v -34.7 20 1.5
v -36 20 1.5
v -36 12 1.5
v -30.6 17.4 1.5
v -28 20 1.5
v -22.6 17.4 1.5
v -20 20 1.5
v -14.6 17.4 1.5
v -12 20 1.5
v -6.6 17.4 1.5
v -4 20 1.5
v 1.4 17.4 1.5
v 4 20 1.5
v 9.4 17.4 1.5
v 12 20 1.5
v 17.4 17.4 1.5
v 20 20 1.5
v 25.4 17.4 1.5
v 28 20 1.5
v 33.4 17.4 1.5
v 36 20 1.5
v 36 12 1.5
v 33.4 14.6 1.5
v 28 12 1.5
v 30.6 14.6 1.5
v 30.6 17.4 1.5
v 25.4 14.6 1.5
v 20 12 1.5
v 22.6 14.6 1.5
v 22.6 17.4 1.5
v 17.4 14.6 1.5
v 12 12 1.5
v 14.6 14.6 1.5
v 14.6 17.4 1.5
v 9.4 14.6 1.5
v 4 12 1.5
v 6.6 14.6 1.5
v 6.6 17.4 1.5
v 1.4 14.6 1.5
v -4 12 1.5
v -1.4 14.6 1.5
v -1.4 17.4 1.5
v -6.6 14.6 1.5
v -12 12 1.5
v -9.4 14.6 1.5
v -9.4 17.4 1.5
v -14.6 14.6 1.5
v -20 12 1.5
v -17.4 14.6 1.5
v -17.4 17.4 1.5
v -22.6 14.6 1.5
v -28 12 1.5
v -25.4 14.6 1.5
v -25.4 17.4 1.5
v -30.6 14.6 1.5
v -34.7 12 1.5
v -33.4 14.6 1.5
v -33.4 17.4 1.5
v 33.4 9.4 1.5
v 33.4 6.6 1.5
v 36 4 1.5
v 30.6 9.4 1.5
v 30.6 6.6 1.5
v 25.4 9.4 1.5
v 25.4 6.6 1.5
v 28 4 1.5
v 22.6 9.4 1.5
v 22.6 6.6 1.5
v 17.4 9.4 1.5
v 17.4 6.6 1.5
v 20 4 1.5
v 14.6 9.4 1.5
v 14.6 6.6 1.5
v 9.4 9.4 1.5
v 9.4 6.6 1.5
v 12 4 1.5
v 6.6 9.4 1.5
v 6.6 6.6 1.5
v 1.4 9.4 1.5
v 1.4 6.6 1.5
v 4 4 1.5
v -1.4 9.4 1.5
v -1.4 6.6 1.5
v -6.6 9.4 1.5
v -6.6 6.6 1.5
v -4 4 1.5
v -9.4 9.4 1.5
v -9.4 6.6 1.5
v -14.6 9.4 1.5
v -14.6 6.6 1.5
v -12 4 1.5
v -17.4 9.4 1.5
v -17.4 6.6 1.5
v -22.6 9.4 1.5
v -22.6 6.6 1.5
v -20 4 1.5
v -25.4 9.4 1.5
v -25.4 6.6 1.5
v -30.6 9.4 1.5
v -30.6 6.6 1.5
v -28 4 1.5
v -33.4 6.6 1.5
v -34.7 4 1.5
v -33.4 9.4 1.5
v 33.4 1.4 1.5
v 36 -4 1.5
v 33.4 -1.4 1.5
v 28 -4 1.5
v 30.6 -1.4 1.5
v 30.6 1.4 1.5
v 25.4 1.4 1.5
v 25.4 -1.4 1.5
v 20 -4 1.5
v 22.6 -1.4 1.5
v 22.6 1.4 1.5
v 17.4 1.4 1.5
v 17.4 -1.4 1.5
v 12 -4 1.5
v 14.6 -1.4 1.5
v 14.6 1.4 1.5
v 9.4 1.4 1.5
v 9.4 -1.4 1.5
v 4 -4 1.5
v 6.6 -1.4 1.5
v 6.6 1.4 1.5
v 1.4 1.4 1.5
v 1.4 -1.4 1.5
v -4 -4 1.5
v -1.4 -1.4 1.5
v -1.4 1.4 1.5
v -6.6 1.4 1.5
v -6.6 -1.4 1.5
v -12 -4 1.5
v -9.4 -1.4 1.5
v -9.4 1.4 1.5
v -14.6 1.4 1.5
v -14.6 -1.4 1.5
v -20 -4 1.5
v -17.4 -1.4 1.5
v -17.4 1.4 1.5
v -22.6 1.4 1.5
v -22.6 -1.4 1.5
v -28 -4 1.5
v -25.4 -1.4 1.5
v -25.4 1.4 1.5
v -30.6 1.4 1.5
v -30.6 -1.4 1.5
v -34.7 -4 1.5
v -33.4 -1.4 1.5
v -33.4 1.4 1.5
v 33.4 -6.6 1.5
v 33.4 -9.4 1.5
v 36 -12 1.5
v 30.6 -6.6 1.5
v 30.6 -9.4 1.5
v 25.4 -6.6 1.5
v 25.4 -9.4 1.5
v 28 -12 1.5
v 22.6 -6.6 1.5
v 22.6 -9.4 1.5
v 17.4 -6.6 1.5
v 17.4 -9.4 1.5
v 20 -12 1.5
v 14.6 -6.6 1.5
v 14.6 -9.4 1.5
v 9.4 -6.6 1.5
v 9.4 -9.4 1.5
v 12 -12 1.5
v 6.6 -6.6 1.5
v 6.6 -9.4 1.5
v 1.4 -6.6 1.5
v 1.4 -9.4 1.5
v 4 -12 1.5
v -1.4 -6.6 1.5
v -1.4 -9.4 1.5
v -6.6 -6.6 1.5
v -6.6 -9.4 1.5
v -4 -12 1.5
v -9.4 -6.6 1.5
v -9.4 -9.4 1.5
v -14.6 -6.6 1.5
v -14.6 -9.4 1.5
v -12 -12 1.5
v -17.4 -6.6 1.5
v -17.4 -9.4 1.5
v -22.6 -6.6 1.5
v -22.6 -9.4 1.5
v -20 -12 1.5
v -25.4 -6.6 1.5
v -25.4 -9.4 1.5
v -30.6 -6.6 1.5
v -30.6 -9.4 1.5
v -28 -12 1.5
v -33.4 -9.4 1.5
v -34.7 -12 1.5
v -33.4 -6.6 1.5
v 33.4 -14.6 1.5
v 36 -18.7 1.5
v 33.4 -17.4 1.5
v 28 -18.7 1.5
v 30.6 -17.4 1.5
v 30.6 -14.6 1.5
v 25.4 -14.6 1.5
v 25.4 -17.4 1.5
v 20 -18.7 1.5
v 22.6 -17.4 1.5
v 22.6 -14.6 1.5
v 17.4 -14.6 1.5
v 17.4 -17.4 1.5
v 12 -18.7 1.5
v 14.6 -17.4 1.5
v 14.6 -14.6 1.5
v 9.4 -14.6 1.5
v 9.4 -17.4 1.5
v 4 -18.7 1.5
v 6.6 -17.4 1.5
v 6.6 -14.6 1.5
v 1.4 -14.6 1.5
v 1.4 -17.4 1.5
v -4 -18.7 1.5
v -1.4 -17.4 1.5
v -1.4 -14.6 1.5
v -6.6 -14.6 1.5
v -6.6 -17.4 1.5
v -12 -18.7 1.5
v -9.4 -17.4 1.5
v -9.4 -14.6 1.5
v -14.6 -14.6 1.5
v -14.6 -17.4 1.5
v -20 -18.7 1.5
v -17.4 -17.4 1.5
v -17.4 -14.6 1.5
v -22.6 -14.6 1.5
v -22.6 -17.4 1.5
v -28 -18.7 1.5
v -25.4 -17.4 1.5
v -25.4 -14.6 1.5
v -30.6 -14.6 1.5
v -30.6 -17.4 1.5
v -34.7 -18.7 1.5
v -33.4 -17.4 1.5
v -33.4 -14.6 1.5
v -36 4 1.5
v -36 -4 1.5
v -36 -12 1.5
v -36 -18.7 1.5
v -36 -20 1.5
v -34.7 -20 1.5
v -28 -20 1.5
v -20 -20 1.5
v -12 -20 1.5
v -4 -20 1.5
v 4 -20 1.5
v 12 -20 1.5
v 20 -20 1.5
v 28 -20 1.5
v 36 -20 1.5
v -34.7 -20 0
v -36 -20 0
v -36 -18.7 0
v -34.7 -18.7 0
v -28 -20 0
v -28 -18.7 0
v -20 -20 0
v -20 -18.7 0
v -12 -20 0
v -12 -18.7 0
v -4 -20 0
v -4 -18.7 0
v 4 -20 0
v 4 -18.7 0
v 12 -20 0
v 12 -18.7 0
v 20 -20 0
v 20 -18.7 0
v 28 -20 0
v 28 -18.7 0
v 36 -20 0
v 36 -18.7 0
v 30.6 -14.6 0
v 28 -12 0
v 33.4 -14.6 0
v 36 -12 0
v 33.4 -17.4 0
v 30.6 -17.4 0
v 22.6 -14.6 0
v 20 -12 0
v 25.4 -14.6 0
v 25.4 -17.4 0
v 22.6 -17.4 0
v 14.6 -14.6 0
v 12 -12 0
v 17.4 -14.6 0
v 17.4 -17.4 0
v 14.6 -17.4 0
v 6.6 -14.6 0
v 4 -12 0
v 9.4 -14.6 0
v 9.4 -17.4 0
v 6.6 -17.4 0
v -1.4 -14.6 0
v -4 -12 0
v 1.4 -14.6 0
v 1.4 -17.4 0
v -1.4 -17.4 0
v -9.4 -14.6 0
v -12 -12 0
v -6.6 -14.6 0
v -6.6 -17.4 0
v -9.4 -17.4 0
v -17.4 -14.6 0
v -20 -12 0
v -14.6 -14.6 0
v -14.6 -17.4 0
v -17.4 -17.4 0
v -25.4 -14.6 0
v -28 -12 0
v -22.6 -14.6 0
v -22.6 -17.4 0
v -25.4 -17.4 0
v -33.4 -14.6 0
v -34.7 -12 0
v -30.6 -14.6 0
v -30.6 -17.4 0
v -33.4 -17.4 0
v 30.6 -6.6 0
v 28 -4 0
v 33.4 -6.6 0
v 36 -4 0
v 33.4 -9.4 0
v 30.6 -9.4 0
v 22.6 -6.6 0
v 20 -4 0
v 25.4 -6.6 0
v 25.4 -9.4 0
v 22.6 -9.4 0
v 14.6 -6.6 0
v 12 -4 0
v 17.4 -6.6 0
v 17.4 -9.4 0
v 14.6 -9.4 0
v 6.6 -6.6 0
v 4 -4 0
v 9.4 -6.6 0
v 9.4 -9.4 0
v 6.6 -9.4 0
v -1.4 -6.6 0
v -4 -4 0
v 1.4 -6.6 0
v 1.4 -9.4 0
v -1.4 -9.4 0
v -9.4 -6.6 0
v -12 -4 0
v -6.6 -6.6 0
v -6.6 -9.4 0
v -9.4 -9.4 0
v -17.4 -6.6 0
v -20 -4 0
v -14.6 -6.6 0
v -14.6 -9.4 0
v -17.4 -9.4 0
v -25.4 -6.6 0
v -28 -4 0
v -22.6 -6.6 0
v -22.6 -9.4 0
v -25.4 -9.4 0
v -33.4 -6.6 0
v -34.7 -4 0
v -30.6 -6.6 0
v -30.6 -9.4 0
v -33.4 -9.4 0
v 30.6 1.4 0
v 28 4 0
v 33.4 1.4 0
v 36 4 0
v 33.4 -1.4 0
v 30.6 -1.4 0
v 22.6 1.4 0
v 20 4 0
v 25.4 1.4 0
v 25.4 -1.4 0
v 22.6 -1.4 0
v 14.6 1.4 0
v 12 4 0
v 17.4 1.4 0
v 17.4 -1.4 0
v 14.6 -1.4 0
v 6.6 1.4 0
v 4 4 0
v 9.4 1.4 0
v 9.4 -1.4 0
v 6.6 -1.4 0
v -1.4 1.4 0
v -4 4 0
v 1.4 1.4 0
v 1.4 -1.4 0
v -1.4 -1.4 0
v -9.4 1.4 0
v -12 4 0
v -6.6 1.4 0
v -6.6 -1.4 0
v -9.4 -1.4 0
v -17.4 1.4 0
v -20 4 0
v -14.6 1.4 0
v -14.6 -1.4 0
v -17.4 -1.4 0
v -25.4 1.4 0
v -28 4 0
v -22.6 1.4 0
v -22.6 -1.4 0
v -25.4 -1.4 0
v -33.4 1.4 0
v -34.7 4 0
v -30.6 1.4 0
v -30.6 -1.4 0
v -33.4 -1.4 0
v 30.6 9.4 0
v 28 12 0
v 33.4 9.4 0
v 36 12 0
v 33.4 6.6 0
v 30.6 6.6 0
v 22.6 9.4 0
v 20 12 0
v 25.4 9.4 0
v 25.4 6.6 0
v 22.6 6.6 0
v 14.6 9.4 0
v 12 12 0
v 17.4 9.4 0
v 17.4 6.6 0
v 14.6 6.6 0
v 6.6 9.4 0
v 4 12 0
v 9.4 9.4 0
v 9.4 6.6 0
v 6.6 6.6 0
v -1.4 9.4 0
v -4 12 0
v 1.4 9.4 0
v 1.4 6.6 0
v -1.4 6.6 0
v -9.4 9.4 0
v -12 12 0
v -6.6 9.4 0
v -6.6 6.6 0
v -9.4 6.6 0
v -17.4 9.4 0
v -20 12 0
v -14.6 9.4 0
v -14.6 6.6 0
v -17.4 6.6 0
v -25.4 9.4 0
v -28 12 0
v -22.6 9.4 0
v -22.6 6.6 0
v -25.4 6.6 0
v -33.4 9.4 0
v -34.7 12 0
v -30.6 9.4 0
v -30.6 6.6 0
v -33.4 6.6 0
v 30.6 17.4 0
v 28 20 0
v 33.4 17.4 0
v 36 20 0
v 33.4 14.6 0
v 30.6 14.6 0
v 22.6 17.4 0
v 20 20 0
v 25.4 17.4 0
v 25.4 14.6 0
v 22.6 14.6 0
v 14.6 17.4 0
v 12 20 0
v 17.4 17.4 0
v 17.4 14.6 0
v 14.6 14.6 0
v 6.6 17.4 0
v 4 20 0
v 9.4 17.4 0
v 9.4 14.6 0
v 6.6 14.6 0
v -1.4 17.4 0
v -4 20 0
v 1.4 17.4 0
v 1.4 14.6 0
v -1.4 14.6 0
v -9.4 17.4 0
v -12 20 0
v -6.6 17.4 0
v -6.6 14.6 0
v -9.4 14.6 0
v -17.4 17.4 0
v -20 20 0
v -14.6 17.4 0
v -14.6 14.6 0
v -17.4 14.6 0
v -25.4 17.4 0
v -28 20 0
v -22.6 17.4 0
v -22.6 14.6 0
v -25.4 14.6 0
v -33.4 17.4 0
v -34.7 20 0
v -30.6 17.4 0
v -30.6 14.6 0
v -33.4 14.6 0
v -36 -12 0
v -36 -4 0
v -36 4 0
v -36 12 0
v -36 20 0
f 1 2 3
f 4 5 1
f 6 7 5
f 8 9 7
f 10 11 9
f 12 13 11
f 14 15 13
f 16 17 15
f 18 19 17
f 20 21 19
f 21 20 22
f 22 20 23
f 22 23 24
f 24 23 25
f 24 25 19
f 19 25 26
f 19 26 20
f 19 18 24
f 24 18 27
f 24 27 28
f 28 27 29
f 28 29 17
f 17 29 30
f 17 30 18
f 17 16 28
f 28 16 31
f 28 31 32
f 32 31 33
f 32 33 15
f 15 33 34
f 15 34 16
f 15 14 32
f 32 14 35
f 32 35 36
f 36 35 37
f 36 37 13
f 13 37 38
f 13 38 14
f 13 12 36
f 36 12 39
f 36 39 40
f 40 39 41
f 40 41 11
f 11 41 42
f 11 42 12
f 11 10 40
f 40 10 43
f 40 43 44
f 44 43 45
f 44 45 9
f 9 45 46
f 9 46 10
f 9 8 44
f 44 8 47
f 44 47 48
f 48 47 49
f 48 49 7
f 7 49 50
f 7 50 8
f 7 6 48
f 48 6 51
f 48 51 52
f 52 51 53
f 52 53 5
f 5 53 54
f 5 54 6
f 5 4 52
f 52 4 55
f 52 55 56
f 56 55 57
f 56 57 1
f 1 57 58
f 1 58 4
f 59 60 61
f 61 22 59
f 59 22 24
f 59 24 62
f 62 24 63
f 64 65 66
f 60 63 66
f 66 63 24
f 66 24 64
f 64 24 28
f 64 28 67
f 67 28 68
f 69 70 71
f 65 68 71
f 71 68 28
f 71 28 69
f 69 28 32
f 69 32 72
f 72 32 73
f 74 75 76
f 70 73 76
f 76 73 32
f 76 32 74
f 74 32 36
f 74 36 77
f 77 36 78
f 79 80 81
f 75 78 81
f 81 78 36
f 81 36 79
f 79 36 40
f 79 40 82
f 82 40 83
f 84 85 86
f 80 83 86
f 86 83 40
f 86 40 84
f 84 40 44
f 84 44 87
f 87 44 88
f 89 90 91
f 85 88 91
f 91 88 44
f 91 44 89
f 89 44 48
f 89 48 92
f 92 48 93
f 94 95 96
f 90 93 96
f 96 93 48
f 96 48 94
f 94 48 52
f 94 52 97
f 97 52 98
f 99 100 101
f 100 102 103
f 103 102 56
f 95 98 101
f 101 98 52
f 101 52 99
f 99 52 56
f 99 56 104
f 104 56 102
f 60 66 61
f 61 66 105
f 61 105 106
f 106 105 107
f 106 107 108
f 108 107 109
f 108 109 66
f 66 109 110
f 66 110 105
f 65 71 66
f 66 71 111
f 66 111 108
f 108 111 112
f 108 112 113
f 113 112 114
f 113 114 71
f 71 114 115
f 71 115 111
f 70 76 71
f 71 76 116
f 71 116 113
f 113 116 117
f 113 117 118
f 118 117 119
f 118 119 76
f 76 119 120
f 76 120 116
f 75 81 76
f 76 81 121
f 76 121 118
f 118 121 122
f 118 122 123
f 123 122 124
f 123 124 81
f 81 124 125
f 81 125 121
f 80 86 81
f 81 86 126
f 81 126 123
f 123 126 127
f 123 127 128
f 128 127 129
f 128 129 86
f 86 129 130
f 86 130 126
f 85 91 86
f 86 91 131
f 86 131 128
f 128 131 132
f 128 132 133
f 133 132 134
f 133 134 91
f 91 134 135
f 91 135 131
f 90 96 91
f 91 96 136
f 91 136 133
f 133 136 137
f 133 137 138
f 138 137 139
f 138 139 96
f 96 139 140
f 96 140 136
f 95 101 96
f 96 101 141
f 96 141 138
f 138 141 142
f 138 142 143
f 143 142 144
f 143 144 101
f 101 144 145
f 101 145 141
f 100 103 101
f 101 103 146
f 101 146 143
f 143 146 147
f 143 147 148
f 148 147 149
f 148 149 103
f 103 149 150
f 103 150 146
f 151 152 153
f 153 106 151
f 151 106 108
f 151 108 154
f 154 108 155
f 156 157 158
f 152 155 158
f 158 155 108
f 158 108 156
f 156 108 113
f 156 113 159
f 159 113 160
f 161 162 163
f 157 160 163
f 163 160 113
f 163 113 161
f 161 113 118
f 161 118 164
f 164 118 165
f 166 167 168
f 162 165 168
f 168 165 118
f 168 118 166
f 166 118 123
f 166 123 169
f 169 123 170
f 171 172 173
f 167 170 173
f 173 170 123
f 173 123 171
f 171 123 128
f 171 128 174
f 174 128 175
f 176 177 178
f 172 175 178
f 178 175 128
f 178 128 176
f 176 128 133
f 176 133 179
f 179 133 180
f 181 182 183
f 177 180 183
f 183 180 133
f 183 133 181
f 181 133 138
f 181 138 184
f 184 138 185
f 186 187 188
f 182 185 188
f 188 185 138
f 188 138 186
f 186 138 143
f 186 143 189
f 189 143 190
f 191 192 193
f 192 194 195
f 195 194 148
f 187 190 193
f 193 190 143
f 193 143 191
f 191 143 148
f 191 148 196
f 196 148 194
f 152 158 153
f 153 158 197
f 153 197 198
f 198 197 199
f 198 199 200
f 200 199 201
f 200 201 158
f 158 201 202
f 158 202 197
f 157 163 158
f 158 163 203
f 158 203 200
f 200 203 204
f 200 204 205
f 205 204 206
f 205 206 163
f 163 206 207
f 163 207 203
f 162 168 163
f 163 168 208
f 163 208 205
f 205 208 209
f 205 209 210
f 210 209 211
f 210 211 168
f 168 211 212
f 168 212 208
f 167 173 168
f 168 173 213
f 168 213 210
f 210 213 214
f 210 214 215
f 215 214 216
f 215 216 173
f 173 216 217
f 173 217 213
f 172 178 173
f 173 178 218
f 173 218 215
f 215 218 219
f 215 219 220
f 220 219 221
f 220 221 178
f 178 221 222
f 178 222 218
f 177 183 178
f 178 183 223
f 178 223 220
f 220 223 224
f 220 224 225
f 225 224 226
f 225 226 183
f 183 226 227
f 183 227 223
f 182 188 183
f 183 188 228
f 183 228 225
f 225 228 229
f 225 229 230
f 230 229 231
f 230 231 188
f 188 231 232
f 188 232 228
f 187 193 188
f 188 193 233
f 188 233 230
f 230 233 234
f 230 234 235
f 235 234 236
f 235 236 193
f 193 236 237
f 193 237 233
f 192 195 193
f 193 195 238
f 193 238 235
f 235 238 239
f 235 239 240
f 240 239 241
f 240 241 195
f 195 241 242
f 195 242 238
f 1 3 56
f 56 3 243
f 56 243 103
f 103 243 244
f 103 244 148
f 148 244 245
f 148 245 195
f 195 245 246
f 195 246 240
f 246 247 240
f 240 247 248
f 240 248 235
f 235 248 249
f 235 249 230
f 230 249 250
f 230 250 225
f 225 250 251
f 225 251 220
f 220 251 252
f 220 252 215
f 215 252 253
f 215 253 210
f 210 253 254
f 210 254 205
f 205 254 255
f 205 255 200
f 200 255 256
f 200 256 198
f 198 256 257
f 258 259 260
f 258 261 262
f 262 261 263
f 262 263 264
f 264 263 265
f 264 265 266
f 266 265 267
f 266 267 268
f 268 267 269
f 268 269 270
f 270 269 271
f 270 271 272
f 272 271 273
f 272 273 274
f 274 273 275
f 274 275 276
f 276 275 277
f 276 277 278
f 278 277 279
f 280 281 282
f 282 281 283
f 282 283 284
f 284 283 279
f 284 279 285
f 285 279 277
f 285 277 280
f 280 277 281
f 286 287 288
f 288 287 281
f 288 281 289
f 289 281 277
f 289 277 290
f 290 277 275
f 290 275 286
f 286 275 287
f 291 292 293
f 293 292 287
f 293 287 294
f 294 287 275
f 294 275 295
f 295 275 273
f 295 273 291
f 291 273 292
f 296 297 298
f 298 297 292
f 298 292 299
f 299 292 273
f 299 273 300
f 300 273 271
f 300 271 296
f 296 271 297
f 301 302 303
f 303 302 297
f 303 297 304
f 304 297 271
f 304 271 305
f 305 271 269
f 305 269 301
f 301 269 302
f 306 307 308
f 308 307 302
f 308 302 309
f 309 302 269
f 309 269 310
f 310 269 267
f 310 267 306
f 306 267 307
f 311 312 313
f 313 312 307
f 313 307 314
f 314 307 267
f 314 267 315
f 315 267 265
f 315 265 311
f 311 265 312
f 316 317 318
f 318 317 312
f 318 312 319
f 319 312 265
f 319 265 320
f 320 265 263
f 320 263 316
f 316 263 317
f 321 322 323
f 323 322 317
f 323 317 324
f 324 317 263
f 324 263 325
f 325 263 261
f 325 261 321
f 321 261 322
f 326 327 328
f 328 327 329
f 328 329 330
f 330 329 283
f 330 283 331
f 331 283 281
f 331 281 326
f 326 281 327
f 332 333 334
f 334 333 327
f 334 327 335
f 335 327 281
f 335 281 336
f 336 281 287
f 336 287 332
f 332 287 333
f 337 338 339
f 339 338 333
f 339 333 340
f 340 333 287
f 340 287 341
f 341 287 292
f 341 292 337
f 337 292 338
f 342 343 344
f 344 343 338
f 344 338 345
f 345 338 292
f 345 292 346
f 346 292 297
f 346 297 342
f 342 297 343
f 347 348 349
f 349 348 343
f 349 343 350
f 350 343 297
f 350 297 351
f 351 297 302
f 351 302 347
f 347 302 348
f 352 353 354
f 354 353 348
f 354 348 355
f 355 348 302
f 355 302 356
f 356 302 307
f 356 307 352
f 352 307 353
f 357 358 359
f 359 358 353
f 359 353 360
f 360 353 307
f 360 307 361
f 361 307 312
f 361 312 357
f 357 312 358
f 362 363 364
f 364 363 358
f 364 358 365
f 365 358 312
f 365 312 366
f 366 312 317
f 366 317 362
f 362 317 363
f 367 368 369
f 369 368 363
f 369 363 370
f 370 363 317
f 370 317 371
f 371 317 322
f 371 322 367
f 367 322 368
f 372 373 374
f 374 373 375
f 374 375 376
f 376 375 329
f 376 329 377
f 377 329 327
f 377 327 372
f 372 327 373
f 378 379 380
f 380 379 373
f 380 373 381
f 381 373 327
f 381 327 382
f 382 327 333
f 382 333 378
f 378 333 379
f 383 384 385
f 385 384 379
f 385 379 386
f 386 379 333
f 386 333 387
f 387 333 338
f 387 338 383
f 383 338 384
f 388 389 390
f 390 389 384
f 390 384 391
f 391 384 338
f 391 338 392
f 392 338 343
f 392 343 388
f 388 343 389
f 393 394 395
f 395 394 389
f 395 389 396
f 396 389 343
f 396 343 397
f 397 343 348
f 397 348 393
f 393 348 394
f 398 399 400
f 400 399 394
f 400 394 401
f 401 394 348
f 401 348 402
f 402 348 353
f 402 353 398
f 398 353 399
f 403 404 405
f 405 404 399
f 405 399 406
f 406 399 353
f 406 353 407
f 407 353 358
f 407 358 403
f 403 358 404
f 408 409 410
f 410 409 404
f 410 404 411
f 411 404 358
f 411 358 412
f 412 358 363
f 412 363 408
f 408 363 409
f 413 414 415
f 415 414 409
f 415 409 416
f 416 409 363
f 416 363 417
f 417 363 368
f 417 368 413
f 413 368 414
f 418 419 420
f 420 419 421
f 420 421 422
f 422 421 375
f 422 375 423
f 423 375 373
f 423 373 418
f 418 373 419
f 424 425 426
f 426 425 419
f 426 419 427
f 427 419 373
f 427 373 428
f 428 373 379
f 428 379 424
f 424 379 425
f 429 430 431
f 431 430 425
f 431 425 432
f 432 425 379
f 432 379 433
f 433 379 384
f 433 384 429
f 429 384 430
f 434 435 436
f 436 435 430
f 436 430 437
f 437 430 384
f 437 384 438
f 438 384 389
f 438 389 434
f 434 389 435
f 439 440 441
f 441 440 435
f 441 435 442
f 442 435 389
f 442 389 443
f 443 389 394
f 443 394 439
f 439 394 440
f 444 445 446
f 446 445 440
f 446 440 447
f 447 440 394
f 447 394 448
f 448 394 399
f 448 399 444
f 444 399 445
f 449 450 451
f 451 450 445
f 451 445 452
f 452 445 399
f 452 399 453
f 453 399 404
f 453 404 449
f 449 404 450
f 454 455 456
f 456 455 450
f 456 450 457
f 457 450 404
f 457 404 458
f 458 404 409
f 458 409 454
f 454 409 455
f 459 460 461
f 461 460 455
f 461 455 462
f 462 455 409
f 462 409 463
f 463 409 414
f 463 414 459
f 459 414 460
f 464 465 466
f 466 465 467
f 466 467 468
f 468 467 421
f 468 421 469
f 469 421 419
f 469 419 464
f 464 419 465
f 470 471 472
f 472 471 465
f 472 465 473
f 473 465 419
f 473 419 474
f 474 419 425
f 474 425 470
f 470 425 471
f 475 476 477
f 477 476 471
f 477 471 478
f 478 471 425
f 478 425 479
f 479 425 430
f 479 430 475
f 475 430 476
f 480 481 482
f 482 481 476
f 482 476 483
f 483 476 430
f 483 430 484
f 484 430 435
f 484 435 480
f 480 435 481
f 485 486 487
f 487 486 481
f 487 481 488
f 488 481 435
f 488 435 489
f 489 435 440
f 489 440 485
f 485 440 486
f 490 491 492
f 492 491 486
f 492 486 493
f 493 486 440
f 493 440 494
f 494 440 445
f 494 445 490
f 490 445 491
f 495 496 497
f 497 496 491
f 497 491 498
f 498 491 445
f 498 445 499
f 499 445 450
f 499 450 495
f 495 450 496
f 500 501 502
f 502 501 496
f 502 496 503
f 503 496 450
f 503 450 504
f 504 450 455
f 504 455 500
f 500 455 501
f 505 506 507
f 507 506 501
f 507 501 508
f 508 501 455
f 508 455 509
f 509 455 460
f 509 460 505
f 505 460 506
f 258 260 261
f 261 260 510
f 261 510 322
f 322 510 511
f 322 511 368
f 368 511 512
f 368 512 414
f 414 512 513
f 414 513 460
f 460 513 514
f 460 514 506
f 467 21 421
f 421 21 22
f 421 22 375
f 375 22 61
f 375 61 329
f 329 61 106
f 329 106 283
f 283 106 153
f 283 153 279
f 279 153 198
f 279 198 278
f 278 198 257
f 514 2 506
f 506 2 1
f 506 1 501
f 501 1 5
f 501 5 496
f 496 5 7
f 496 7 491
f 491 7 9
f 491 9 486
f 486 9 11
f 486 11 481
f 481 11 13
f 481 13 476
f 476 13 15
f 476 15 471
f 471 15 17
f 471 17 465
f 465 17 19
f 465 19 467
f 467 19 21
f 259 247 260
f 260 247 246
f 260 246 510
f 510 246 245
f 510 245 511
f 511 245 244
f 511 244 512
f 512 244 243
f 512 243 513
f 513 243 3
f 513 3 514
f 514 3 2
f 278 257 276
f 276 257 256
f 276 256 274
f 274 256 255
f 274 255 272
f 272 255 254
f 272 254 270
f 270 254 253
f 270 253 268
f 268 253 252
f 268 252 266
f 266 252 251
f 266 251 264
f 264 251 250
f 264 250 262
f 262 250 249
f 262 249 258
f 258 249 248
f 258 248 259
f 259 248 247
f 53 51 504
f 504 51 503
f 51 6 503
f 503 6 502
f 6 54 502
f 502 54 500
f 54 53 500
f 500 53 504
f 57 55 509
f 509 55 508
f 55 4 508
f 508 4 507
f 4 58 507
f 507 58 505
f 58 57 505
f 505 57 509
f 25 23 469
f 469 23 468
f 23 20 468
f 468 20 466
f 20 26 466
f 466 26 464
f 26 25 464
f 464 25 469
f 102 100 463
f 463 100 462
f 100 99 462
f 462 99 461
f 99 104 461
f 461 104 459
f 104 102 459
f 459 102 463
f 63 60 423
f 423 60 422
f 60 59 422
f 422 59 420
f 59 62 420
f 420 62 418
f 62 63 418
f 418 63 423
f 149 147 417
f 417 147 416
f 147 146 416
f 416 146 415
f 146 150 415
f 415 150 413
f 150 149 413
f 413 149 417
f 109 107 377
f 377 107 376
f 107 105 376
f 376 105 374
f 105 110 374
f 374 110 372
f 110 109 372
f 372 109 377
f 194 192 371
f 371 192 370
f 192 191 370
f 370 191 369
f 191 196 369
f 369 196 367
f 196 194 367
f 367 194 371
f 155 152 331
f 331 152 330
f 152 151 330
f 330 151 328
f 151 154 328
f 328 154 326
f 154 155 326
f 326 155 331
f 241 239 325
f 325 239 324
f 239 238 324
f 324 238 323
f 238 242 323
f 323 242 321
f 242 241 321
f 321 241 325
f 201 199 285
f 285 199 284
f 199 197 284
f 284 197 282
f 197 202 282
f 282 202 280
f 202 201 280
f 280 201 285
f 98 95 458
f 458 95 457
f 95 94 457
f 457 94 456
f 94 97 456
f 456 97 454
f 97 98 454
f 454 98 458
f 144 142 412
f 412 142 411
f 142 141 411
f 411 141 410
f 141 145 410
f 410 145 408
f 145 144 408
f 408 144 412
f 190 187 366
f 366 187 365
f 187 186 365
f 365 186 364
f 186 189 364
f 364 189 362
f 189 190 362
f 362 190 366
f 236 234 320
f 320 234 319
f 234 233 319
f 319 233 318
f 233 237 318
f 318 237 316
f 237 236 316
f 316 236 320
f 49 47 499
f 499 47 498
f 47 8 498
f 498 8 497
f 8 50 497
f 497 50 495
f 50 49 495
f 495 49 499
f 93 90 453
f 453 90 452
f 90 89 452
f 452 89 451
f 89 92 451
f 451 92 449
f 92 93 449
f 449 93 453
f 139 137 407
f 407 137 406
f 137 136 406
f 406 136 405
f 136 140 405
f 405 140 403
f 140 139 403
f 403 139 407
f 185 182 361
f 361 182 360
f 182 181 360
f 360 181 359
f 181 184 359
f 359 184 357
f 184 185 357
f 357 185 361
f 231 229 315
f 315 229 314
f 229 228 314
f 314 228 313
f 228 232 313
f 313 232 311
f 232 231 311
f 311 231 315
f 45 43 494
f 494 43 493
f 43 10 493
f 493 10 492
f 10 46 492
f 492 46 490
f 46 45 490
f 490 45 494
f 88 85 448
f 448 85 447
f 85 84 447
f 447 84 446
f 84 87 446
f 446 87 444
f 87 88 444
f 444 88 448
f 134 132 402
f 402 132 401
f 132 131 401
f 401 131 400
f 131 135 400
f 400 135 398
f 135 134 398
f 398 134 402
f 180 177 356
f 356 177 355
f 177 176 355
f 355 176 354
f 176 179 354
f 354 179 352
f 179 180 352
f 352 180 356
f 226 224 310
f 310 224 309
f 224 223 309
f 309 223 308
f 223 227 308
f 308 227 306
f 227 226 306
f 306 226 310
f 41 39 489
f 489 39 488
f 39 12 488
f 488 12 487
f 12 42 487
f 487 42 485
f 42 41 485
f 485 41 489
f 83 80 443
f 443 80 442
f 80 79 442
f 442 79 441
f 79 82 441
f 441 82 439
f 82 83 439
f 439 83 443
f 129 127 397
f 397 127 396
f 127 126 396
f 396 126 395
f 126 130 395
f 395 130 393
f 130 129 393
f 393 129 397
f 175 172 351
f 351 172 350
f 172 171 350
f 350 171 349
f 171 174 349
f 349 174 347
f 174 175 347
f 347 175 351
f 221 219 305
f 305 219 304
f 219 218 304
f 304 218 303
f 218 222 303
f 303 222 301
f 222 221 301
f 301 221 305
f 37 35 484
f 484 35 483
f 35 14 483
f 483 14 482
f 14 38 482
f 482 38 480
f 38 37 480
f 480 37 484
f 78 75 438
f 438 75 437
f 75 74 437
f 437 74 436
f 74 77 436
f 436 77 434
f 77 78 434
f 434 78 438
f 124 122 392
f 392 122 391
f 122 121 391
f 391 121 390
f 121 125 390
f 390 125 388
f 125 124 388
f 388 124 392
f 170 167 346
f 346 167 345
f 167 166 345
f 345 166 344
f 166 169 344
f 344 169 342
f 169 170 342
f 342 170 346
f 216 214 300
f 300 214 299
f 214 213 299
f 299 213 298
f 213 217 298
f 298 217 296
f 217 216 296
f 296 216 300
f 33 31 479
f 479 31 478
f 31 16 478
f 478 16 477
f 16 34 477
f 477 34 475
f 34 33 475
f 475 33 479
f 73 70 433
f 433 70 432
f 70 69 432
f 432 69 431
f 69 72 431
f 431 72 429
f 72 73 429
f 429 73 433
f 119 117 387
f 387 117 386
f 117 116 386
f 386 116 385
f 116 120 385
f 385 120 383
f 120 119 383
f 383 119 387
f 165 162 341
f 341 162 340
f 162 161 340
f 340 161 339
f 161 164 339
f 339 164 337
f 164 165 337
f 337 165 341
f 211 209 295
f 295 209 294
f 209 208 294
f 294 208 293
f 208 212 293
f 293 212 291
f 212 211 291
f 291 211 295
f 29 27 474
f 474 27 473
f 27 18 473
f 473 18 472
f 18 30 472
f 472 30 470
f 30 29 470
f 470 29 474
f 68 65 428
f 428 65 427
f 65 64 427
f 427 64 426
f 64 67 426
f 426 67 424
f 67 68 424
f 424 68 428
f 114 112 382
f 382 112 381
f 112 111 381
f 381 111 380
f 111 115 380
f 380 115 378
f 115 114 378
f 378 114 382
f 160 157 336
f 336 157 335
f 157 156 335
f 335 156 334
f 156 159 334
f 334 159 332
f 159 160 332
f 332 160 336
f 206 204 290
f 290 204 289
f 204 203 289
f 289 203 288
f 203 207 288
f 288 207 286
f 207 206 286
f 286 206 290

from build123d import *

# Parameters (mm, degrees)
ESBO_O1_W                = 72
ESBO_O1_H                = 40
ESBO_O1_W_2              = 2.8
ESBO_O1_H_2              = 2.8
RESSALTO_EXTRUS_O1_DEPTH = 1.5


with BuildPart() as part:
    # Esboço1 → Ressalto-extrusão1 (new body)
    with BuildSketch(Plane.XY):
        Rectangle(ESBO_O1_W, ESBO_O1_H)
        with Locations((-32, 16)):
            Rectangle(ESBO_O1_W_2, ESBO_O1_H_2, mode=Mode.SUBTRACT)
        with Locations((-24, 16)):
            Rectangle(ESBO_O1_W_2, ESBO_O1_H_2, mode=Mode.SUBTRACT)
        with Locations((-24, 8)):
            Rectangle(ESBO_O1_W_2, ESBO_O1_H_2, mode=Mode.SUBTRACT)
        with Locations((32, 16)):
            Rectangle(ESBO_O1_W_2, ESBO_O1_H_2, mode=Mode.SUBTRACT)
        with Locations((-32, 8)):
            Rectangle(ESBO_O1_W_2, ESBO_O1_H_2, mode=Mode.SUBTRACT)
        with Locations((32, 8)):
            Rectangle(ESBO_O1_W_2, ESBO_O1_H_2, mode=Mode.SUBTRACT)
        with Locations((-32, 0)):
            Rectangle(ESBO_O1_W_2, ESBO_O1_H_2, mode=Mode.SUBTRACT)
        with Locations((32, 0)):
            Rectangle(ESBO_O1_W_2, ESBO_O1_H_2, mode=Mode.SUBTRACT)
        with Locations((-32, -8)):
            Rectangle(ESBO_O1_W_2, ESBO_O1_H_2, mode=Mode.SUBTRACT)
        with Locations((32, -8)):
            Rectangle(ESBO_O1_W_2, ESBO_O1_H_2, mode=Mode.SUBTRACT)
        with Locations((-32, -16)):
            Rectangle(ESBO_O1_W_2, ESBO_O1_H_2, mode=Mode.SUBTRACT)
        with Locations((32, -16)):
            Rectangle(ESBO_O1_W_2, ESBO_O1_H_2, mode=Mode.SUBTRACT)
        with Locations((-24, 0)):
            Rectangle(ESBO_O1_W_2, ESBO_O1_H_2, mode=Mode.SUBTRACT)
        with Locations((-24, -8)):
            Rectangle(ESBO_O1_W_2, ESBO_O1_H_2, mode=Mode.SUBTRACT)
        with Locations((-24, -16)):
            Rectangle(ESBO_O1_W_2, ESBO_O1_H_2, mode=Mode.SUBTRACT)
        with Locations((-16, 16)):
            Rectangle(ESBO_O1_W_2, ESBO_O1_H_2, mode=Mode.SUBTRACT)
        with Locations((-16, 8)):
            Rectangle(ESBO_O1_W_2, ESBO_O1_H_2, mode=Mode.SUBTRACT)
        with Locations((-16, 0)):
            Rectangle(ESBO_O1_W_2, ESBO_O1_H_2, mode=Mode.SUBTRACT)
        with Locations((-16, -8)):
            Rectangle(ESBO_O1_W_2, ESBO_O1_H_2, mode=Mode.SUBTRACT)
        with Locations((-16, -16)):
            Rectangle(ESBO_O1_W_2, ESBO_O1_H_2, mode=Mode.SUBTRACT)
        with Locations((-8, 16)):
            Rectangle(ESBO_O1_W_2, ESBO_O1_H_2, mode=Mode.SUBTRACT)
        with Locations((-8, 8)):
            Rectangle(ESBO_O1_W_2, ESBO_O1_H_2, mode=Mode.SUBTRACT)
        with Locations((-8, 0)):
            Rectangle(ESBO_O1_W_2, ESBO_O1_H_2, mode=Mode.SUBTRACT)
        with Locations((-8, -8)):
            Rectangle(ESBO_O1_W_2, ESBO_O1_H_2, mode=Mode.SUBTRACT)
        with Locations((-8, -16)):
            Rectangle(ESBO_O1_W_2, ESBO_O1_H_2, mode=Mode.SUBTRACT)
        with Locations((0, 16)):
            Rectangle(ESBO_O1_W_2, ESBO_O1_H_2, mode=Mode.SUBTRACT)
        with Locations((0, 8)):
            Rectangle(ESBO_O1_W_2, ESBO_O1_H_2, mode=Mode.SUBTRACT)
        Rectangle(ESBO_O1_W_2, ESBO_O1_H_2, mode=Mode.SUBTRACT)
        with Locations((0, -8)):
            Rectangle(ESBO_O1_W_2, ESBO_O1_H_2, mode=Mode.SUBTRACT)
        with Locations((0, -16)):
            Rectangle(ESBO_O1_W_2, ESBO_O1_H_2, mode=Mode.SUBTRACT)
        with Locations((8, 16)):
            Rectangle(ESBO_O1_W_2, ESBO_O1_H_2, mode=Mode.SUBTRACT)
        with Locations((8, 8)):
            Rectangle(ESBO_O1_W_2, ESBO_O1_H_2, mode=Mode.SUBTRACT)
        with Locations((8, 0)):
            Rectangle(ESBO_O1_W_2, ESBO_O1_H_2, mode=Mode.SUBTRACT)
        with Locations((8, -8)):
            Rectangle(ESBO_O1_W_2, ESBO_O1_H_2, mode=Mode.SUBTRACT)
        with Locations((8, -16)):
            Rectangle(ESBO_O1_W_2, ESBO_O1_H_2, mode=Mode.SUBTRACT)
        with Locations((16, 16)):
            Rectangle(ESBO_O1_W_2, ESBO_O1_H_2, mode=Mode.SUBTRACT)
        with Locations((16, 8)):
            Rectangle(ESBO_O1_W_2, ESBO_O1_H_2, mode=Mode.SUBTRACT)
        with Locations((16, 0)):
            Rectangle(ESBO_O1_W_2, ESBO_O1_H_2, mode=Mode.SUBTRACT)
        with Locations((16, -8)):
            Rectangle(ESBO_O1_W_2, ESBO_O1_H_2, mode=Mode.SUBTRACT)
        with Locations((16, -16)):
            Rectangle(ESBO_O1_W_2, ESBO_O1_H_2, mode=Mode.SUBTRACT)
        with Locations((24, 16)):
            Rectangle(ESBO_O1_W_2, ESBO_O1_H_2, mode=Mode.SUBTRACT)
        with Locations((24, 8)):
            Rectangle(ESBO_O1_W_2, ESBO_O1_H_2, mode=Mode.SUBTRACT)
        with Locations((24, 0)):
            Rectangle(ESBO_O1_W_2, ESBO_O1_H_2, mode=Mode.SUBTRACT)
        with Locations((24, -8)):
            Rectangle(ESBO_O1_W_2, ESBO_O1_H_2, mode=Mode.SUBTRACT)
        with Locations((24, -16)):
            Rectangle(ESBO_O1_W_2, ESBO_O1_H_2, mode=Mode.SUBTRACT)
    extrude(amount=RESSALTO_EXTRUS_O1_DEPTH)


solid = part.part
